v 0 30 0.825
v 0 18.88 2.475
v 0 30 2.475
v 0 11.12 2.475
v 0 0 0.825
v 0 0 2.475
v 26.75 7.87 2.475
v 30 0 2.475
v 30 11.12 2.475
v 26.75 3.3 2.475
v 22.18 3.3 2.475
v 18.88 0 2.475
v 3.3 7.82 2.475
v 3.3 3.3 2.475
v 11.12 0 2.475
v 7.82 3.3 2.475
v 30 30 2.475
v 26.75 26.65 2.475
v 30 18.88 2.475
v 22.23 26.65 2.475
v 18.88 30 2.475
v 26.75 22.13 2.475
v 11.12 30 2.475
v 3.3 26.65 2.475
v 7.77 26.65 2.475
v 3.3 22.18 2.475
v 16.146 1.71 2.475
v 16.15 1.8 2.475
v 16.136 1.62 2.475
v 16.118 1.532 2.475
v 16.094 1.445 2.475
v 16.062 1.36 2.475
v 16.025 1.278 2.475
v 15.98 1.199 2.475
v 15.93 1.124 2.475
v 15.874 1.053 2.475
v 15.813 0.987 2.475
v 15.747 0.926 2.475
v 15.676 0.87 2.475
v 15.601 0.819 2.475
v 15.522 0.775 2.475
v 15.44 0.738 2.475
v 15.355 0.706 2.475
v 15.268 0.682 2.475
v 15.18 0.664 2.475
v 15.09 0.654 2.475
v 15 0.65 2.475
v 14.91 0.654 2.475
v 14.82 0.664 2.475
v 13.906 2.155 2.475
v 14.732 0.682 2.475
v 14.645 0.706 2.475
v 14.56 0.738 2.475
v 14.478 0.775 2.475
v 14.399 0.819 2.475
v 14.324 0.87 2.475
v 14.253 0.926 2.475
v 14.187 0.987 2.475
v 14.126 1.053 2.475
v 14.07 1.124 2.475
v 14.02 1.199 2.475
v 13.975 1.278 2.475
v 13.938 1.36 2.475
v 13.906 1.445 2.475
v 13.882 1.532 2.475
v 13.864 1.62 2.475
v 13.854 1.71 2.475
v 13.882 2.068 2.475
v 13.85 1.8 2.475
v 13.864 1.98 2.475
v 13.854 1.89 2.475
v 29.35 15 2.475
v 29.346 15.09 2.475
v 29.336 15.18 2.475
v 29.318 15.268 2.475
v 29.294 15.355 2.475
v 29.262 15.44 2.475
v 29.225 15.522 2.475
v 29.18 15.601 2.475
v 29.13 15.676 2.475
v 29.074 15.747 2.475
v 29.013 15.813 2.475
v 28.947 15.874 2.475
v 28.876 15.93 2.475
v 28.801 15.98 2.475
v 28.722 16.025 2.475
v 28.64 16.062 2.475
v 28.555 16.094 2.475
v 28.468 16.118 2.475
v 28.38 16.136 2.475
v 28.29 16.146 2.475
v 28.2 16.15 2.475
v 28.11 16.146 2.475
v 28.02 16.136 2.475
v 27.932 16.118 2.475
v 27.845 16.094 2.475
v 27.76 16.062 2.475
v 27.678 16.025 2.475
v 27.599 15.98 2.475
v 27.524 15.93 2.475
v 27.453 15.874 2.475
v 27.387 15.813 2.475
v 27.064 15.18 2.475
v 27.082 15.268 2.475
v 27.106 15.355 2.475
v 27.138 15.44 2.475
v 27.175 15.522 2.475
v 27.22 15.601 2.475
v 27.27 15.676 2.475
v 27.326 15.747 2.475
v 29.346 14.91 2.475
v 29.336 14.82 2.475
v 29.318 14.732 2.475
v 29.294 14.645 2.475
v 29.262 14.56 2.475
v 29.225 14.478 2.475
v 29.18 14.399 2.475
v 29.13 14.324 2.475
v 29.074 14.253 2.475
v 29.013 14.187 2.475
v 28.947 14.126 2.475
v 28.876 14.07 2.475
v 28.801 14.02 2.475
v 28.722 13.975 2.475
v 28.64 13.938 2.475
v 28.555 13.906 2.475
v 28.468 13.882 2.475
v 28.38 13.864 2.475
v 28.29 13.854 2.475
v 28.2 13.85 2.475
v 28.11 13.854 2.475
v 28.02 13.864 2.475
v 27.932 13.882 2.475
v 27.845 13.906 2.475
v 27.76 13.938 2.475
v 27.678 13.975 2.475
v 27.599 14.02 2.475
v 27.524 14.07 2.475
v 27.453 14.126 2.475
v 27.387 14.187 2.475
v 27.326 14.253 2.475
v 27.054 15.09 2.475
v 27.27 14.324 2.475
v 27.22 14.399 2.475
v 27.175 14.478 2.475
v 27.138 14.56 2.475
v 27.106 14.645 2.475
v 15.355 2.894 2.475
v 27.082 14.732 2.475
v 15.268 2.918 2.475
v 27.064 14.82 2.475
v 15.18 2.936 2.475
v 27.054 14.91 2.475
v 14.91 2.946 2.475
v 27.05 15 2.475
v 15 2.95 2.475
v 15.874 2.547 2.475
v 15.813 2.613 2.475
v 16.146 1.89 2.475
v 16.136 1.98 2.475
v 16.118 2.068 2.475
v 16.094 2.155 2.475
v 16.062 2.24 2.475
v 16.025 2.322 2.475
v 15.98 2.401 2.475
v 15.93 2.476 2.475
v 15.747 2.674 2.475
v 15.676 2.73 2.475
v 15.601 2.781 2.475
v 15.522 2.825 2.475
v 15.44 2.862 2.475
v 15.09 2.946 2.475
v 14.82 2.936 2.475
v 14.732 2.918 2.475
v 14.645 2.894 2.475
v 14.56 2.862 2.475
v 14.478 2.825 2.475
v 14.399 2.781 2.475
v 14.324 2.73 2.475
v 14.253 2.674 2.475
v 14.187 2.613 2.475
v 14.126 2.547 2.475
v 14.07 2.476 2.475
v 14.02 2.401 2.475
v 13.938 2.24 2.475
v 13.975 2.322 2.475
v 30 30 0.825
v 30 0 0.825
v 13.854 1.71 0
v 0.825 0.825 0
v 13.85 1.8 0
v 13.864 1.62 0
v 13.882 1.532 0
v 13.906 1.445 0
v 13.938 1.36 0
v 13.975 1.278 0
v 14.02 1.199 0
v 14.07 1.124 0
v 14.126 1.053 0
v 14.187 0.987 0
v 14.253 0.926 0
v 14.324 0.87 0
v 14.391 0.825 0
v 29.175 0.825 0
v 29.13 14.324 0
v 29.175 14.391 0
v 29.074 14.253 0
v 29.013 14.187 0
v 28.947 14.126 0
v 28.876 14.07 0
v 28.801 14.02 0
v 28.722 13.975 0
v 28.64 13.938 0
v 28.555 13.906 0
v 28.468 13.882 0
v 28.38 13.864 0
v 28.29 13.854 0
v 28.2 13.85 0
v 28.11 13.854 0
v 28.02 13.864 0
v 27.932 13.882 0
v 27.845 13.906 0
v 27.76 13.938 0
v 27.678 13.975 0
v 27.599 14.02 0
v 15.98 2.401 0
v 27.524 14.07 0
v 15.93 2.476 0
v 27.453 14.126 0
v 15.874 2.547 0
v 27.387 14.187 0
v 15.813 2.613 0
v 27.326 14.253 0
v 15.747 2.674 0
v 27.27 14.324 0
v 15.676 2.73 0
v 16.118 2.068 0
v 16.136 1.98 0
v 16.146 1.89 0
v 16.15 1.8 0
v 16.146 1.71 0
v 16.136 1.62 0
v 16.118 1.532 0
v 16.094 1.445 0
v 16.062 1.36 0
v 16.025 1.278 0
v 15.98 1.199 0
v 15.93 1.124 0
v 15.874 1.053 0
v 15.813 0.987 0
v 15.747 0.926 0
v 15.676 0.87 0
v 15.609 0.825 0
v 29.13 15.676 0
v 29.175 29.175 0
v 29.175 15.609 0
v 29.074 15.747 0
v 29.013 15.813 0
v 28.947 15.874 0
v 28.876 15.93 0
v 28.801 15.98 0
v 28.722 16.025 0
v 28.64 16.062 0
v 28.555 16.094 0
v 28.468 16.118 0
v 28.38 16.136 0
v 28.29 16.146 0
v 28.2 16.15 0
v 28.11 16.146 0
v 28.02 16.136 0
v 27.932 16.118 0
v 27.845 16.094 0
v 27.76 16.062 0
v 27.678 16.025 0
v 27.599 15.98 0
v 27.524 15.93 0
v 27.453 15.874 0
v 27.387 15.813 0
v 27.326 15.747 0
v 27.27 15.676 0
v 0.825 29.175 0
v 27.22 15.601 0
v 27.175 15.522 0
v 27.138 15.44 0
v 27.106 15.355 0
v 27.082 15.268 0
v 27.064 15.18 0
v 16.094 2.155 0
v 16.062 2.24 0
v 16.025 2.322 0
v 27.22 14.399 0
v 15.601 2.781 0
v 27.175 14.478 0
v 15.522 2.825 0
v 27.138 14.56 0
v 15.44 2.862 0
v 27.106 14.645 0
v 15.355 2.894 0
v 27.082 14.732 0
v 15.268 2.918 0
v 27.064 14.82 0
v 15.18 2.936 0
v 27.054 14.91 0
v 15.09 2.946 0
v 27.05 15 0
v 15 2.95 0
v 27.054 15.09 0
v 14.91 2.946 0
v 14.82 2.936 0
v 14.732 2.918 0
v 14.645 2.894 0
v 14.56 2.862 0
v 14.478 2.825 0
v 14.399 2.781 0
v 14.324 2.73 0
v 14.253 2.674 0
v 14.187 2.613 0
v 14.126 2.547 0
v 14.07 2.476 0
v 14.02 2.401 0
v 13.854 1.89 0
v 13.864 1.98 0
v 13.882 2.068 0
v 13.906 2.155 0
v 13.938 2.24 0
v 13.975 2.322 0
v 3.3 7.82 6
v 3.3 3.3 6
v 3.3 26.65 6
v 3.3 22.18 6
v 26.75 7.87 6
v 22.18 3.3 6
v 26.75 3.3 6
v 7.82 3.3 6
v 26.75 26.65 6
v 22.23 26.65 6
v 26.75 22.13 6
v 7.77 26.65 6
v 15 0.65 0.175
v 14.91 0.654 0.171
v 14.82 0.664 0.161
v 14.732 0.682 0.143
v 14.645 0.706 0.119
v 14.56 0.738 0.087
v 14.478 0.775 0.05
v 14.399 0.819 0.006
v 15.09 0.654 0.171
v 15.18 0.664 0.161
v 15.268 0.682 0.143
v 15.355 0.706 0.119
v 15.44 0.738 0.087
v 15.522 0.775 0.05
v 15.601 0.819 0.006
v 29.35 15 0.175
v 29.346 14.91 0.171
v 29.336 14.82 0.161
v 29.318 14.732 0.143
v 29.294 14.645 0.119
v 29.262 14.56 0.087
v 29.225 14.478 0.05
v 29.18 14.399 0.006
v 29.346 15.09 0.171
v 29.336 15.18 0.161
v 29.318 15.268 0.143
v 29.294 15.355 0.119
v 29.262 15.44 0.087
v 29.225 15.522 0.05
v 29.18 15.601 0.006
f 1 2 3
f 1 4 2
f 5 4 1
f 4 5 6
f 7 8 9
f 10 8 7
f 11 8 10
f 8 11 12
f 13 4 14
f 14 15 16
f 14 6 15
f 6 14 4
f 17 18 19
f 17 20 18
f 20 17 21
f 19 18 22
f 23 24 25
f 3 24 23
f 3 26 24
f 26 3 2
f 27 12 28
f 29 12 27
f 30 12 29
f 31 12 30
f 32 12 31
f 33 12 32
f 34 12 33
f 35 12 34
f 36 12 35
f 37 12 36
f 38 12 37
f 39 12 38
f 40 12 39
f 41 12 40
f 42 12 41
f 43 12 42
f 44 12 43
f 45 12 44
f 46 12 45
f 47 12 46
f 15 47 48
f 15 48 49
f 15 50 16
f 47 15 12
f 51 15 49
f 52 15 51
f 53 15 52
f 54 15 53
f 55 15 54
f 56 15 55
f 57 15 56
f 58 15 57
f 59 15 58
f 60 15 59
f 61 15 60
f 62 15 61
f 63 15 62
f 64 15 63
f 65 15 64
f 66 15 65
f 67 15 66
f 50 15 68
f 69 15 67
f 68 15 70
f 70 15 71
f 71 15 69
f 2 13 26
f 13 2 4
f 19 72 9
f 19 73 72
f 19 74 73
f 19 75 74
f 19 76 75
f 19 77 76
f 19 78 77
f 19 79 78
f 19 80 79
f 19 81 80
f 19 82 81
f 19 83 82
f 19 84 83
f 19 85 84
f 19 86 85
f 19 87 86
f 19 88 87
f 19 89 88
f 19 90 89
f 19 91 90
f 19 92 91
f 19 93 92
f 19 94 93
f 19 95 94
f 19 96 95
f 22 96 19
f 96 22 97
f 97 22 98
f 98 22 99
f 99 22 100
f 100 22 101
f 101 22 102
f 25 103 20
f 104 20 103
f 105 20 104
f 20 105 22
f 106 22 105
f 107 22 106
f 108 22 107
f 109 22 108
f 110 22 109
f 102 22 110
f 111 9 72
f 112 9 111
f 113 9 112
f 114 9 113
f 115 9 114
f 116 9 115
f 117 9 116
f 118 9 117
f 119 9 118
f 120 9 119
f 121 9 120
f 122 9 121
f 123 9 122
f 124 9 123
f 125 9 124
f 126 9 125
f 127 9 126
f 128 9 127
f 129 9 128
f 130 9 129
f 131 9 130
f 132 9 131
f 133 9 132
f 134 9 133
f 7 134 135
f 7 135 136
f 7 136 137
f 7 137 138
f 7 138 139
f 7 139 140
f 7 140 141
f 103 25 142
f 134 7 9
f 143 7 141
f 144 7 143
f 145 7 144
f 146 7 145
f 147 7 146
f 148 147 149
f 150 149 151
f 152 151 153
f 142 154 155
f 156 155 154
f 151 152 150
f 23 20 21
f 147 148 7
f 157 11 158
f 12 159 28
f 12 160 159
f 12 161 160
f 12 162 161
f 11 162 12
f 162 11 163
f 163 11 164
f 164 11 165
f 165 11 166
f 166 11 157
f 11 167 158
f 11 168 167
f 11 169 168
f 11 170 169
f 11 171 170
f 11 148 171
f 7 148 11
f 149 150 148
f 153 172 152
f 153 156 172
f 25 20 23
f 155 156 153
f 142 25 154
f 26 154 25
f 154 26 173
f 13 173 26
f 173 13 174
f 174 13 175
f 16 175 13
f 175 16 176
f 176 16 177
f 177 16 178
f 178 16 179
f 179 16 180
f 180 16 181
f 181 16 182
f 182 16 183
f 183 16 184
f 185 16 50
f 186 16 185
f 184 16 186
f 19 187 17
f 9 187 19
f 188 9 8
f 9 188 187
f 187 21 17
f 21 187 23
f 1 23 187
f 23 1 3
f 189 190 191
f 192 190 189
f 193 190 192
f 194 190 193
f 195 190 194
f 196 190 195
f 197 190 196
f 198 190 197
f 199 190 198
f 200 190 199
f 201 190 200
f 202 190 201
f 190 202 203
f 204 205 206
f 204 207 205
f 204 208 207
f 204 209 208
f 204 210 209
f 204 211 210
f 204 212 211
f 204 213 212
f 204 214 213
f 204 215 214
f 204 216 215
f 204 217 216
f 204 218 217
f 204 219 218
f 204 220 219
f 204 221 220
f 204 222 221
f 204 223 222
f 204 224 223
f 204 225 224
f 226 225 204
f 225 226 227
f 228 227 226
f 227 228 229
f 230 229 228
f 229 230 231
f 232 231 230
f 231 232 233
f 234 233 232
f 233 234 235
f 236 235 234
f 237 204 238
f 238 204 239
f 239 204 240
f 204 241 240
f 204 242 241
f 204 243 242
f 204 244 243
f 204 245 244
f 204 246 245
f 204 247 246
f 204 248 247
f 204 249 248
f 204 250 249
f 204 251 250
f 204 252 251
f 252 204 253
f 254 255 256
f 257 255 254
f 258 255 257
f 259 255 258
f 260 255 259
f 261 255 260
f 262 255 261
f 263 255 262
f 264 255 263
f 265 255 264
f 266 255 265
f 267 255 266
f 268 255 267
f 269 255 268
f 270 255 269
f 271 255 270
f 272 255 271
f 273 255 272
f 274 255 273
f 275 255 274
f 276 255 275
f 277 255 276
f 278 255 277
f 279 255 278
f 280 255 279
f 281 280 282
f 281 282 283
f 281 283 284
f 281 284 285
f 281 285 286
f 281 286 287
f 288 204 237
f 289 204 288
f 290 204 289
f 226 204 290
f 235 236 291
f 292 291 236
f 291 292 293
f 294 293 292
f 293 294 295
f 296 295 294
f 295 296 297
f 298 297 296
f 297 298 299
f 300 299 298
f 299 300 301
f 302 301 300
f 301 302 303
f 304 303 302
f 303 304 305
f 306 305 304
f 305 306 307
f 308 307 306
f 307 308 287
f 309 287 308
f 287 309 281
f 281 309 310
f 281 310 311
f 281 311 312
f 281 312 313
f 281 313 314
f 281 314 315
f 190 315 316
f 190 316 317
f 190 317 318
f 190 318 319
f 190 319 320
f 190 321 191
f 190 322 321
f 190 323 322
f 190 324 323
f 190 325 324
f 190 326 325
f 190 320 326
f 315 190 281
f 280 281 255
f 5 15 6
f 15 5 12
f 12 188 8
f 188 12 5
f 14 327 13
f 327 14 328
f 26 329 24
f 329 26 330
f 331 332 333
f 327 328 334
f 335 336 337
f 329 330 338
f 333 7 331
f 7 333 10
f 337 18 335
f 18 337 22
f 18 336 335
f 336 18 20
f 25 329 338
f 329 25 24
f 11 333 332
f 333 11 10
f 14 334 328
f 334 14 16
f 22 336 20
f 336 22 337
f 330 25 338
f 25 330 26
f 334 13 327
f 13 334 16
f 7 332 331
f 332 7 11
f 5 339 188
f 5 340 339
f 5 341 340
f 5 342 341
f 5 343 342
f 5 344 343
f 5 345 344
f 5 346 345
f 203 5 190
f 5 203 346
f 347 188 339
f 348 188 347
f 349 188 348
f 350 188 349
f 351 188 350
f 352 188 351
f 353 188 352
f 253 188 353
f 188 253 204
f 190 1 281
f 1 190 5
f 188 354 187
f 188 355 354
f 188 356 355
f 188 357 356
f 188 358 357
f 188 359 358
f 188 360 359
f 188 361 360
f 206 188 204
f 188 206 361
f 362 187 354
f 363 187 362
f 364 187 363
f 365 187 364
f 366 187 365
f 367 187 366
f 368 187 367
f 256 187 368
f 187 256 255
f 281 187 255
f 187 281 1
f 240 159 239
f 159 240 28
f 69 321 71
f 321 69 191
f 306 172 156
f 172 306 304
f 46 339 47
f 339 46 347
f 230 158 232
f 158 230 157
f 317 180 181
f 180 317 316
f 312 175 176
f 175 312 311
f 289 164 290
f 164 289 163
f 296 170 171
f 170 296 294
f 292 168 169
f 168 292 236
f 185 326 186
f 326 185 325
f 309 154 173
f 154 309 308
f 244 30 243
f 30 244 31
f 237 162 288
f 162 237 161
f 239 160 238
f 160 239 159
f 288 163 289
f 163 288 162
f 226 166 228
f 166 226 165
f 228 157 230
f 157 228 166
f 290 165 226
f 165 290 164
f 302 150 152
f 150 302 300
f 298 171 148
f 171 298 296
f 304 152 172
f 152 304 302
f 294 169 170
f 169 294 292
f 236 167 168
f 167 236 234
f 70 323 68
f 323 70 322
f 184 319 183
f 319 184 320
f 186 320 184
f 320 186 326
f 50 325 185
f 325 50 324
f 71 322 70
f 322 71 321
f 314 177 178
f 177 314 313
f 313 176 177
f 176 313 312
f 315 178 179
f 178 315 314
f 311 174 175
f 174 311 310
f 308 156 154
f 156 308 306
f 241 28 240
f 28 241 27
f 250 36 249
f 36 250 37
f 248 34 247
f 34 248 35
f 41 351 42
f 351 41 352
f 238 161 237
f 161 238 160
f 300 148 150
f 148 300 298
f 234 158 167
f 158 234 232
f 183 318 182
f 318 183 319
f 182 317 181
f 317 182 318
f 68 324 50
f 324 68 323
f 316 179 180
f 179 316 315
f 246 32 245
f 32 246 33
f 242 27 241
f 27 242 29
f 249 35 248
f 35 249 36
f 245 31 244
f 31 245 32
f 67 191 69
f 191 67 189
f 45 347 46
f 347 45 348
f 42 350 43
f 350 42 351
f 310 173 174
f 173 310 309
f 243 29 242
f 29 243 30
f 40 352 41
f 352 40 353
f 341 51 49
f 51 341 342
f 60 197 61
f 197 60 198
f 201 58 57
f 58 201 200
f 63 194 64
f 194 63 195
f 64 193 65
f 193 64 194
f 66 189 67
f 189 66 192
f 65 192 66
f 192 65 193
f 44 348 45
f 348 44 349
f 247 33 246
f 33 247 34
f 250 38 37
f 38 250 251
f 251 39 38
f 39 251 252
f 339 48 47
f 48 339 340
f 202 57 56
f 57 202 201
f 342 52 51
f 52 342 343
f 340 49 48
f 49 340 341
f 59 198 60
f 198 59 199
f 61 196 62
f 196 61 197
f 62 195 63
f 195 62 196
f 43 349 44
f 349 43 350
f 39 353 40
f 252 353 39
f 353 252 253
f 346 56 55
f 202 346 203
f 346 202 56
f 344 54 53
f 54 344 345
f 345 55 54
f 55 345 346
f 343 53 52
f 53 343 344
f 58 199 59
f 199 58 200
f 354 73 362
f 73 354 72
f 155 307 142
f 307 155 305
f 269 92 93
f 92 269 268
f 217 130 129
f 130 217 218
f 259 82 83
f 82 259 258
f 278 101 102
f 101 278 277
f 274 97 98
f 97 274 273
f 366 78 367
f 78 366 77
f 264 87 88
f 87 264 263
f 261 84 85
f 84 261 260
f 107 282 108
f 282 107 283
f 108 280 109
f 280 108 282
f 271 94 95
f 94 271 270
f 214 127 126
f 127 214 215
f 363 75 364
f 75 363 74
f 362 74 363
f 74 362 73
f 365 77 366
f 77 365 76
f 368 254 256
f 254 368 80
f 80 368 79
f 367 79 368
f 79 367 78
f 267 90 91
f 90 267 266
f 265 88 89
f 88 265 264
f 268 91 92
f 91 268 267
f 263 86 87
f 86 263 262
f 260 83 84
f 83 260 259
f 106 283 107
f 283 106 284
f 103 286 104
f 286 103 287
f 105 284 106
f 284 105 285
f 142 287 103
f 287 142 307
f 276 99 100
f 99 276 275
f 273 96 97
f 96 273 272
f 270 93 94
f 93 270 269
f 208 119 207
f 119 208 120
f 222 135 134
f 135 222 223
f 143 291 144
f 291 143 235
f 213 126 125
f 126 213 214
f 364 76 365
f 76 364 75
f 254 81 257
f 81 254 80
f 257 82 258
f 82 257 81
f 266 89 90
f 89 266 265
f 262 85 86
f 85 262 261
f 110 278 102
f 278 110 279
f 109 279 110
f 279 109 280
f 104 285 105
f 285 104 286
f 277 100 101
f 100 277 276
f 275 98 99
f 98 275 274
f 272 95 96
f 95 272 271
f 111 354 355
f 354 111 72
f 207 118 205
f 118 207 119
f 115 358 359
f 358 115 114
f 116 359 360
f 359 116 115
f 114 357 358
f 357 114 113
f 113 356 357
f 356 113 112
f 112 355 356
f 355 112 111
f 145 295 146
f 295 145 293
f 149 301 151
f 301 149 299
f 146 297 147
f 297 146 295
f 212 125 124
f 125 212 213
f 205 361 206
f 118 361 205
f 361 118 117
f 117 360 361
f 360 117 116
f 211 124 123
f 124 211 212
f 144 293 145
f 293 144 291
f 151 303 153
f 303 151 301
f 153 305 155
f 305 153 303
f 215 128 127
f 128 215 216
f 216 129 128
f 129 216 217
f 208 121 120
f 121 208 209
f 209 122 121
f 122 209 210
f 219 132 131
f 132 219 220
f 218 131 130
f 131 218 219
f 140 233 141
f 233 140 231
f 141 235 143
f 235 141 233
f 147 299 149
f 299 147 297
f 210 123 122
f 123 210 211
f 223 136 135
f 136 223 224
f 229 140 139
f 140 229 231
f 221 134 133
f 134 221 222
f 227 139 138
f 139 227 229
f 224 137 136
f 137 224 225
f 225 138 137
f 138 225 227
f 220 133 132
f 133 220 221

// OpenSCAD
// file: settings.scad
cube_width=30;
cube_height=16;
cube_thickness=3.3;

cap_width=30;
cap_height=6;
cap_thickness=3.3;

glyph_depth=0.7;
glyph_thickness=1.5;

photo_resitor_hole_r = 3.1;
spring_contact_hole_r = 3.35;
// main file
include <settings.scad>

module cap_1x1(width, height, thickness, holes_mask)
{
    width1=width-thickness;
    difference()
    {
        union()
        {
            cube([width, width, thickness*3/4]);
            translate([thickness,thickness,0])cube([width-2*thickness, width-2*thickness, height]);
        }
        union()
        {
            translate([width/2,width/2,0])rotate([0,0,45])translate([-width1/2,-width1/2,thickness*3/4]) cube([width1,width1,height]);
                        //corners
            translate([0,0.25*thickness,0])rotate([45,0,0]) translate([-0.5*width, -width, -0.5*height]) cube([2*width, width, 2*height]);
            translate([0.25*thickness,0,0]) rotate([0,-45,0]) translate([-width, -0.5*width, -0.5*height]) cube([width, 2*width, 2*height]);
            translate([width-0.25*thickness,0,0]) rotate([0,45,0]) translate([0, 0, -0.5*height]) cube([width, 2*width, 2*height]);
            translate([0,width-0.25*thickness,0]) rotate([-45,0,0]) translate([-0.5*width, 0, -0.5*height]) cube([2*width, width, 2*height]);
            
            if (holes_mask >= 8)
            {
                translate([width/2, thickness-1.5, -0.5]) cylinder(r=1.15, h=height*1.5, $fn=80);
            }
            if ((holes_mask%8) >= 4)
            {
                translate([width/2, width-thickness+1.5, -0.5]) cylinder(r=1.15, h=height*1.5, $fn=80);
            }
            if ((holes_mask%4)>= 2)
            {
                translate([thickness-1.5, width/2, -0.5]) cylinder(r=1.15, h=height*1.5, $fn=80);
            }
            if (holes_mask%2 >= 1)
            {
                translate([width-thickness+1.5, width/2, -0.5]) cylinder(r=1.15, h=height*1.5, $fn=80);
            }
        }
    }
}

cap_1x1(cap_width, cap_height, cap_thickness, 9);
//ring(10,1,1);
//arrow(1, 20, 3, 1);
//transistor_npn(30, 1, 1);
